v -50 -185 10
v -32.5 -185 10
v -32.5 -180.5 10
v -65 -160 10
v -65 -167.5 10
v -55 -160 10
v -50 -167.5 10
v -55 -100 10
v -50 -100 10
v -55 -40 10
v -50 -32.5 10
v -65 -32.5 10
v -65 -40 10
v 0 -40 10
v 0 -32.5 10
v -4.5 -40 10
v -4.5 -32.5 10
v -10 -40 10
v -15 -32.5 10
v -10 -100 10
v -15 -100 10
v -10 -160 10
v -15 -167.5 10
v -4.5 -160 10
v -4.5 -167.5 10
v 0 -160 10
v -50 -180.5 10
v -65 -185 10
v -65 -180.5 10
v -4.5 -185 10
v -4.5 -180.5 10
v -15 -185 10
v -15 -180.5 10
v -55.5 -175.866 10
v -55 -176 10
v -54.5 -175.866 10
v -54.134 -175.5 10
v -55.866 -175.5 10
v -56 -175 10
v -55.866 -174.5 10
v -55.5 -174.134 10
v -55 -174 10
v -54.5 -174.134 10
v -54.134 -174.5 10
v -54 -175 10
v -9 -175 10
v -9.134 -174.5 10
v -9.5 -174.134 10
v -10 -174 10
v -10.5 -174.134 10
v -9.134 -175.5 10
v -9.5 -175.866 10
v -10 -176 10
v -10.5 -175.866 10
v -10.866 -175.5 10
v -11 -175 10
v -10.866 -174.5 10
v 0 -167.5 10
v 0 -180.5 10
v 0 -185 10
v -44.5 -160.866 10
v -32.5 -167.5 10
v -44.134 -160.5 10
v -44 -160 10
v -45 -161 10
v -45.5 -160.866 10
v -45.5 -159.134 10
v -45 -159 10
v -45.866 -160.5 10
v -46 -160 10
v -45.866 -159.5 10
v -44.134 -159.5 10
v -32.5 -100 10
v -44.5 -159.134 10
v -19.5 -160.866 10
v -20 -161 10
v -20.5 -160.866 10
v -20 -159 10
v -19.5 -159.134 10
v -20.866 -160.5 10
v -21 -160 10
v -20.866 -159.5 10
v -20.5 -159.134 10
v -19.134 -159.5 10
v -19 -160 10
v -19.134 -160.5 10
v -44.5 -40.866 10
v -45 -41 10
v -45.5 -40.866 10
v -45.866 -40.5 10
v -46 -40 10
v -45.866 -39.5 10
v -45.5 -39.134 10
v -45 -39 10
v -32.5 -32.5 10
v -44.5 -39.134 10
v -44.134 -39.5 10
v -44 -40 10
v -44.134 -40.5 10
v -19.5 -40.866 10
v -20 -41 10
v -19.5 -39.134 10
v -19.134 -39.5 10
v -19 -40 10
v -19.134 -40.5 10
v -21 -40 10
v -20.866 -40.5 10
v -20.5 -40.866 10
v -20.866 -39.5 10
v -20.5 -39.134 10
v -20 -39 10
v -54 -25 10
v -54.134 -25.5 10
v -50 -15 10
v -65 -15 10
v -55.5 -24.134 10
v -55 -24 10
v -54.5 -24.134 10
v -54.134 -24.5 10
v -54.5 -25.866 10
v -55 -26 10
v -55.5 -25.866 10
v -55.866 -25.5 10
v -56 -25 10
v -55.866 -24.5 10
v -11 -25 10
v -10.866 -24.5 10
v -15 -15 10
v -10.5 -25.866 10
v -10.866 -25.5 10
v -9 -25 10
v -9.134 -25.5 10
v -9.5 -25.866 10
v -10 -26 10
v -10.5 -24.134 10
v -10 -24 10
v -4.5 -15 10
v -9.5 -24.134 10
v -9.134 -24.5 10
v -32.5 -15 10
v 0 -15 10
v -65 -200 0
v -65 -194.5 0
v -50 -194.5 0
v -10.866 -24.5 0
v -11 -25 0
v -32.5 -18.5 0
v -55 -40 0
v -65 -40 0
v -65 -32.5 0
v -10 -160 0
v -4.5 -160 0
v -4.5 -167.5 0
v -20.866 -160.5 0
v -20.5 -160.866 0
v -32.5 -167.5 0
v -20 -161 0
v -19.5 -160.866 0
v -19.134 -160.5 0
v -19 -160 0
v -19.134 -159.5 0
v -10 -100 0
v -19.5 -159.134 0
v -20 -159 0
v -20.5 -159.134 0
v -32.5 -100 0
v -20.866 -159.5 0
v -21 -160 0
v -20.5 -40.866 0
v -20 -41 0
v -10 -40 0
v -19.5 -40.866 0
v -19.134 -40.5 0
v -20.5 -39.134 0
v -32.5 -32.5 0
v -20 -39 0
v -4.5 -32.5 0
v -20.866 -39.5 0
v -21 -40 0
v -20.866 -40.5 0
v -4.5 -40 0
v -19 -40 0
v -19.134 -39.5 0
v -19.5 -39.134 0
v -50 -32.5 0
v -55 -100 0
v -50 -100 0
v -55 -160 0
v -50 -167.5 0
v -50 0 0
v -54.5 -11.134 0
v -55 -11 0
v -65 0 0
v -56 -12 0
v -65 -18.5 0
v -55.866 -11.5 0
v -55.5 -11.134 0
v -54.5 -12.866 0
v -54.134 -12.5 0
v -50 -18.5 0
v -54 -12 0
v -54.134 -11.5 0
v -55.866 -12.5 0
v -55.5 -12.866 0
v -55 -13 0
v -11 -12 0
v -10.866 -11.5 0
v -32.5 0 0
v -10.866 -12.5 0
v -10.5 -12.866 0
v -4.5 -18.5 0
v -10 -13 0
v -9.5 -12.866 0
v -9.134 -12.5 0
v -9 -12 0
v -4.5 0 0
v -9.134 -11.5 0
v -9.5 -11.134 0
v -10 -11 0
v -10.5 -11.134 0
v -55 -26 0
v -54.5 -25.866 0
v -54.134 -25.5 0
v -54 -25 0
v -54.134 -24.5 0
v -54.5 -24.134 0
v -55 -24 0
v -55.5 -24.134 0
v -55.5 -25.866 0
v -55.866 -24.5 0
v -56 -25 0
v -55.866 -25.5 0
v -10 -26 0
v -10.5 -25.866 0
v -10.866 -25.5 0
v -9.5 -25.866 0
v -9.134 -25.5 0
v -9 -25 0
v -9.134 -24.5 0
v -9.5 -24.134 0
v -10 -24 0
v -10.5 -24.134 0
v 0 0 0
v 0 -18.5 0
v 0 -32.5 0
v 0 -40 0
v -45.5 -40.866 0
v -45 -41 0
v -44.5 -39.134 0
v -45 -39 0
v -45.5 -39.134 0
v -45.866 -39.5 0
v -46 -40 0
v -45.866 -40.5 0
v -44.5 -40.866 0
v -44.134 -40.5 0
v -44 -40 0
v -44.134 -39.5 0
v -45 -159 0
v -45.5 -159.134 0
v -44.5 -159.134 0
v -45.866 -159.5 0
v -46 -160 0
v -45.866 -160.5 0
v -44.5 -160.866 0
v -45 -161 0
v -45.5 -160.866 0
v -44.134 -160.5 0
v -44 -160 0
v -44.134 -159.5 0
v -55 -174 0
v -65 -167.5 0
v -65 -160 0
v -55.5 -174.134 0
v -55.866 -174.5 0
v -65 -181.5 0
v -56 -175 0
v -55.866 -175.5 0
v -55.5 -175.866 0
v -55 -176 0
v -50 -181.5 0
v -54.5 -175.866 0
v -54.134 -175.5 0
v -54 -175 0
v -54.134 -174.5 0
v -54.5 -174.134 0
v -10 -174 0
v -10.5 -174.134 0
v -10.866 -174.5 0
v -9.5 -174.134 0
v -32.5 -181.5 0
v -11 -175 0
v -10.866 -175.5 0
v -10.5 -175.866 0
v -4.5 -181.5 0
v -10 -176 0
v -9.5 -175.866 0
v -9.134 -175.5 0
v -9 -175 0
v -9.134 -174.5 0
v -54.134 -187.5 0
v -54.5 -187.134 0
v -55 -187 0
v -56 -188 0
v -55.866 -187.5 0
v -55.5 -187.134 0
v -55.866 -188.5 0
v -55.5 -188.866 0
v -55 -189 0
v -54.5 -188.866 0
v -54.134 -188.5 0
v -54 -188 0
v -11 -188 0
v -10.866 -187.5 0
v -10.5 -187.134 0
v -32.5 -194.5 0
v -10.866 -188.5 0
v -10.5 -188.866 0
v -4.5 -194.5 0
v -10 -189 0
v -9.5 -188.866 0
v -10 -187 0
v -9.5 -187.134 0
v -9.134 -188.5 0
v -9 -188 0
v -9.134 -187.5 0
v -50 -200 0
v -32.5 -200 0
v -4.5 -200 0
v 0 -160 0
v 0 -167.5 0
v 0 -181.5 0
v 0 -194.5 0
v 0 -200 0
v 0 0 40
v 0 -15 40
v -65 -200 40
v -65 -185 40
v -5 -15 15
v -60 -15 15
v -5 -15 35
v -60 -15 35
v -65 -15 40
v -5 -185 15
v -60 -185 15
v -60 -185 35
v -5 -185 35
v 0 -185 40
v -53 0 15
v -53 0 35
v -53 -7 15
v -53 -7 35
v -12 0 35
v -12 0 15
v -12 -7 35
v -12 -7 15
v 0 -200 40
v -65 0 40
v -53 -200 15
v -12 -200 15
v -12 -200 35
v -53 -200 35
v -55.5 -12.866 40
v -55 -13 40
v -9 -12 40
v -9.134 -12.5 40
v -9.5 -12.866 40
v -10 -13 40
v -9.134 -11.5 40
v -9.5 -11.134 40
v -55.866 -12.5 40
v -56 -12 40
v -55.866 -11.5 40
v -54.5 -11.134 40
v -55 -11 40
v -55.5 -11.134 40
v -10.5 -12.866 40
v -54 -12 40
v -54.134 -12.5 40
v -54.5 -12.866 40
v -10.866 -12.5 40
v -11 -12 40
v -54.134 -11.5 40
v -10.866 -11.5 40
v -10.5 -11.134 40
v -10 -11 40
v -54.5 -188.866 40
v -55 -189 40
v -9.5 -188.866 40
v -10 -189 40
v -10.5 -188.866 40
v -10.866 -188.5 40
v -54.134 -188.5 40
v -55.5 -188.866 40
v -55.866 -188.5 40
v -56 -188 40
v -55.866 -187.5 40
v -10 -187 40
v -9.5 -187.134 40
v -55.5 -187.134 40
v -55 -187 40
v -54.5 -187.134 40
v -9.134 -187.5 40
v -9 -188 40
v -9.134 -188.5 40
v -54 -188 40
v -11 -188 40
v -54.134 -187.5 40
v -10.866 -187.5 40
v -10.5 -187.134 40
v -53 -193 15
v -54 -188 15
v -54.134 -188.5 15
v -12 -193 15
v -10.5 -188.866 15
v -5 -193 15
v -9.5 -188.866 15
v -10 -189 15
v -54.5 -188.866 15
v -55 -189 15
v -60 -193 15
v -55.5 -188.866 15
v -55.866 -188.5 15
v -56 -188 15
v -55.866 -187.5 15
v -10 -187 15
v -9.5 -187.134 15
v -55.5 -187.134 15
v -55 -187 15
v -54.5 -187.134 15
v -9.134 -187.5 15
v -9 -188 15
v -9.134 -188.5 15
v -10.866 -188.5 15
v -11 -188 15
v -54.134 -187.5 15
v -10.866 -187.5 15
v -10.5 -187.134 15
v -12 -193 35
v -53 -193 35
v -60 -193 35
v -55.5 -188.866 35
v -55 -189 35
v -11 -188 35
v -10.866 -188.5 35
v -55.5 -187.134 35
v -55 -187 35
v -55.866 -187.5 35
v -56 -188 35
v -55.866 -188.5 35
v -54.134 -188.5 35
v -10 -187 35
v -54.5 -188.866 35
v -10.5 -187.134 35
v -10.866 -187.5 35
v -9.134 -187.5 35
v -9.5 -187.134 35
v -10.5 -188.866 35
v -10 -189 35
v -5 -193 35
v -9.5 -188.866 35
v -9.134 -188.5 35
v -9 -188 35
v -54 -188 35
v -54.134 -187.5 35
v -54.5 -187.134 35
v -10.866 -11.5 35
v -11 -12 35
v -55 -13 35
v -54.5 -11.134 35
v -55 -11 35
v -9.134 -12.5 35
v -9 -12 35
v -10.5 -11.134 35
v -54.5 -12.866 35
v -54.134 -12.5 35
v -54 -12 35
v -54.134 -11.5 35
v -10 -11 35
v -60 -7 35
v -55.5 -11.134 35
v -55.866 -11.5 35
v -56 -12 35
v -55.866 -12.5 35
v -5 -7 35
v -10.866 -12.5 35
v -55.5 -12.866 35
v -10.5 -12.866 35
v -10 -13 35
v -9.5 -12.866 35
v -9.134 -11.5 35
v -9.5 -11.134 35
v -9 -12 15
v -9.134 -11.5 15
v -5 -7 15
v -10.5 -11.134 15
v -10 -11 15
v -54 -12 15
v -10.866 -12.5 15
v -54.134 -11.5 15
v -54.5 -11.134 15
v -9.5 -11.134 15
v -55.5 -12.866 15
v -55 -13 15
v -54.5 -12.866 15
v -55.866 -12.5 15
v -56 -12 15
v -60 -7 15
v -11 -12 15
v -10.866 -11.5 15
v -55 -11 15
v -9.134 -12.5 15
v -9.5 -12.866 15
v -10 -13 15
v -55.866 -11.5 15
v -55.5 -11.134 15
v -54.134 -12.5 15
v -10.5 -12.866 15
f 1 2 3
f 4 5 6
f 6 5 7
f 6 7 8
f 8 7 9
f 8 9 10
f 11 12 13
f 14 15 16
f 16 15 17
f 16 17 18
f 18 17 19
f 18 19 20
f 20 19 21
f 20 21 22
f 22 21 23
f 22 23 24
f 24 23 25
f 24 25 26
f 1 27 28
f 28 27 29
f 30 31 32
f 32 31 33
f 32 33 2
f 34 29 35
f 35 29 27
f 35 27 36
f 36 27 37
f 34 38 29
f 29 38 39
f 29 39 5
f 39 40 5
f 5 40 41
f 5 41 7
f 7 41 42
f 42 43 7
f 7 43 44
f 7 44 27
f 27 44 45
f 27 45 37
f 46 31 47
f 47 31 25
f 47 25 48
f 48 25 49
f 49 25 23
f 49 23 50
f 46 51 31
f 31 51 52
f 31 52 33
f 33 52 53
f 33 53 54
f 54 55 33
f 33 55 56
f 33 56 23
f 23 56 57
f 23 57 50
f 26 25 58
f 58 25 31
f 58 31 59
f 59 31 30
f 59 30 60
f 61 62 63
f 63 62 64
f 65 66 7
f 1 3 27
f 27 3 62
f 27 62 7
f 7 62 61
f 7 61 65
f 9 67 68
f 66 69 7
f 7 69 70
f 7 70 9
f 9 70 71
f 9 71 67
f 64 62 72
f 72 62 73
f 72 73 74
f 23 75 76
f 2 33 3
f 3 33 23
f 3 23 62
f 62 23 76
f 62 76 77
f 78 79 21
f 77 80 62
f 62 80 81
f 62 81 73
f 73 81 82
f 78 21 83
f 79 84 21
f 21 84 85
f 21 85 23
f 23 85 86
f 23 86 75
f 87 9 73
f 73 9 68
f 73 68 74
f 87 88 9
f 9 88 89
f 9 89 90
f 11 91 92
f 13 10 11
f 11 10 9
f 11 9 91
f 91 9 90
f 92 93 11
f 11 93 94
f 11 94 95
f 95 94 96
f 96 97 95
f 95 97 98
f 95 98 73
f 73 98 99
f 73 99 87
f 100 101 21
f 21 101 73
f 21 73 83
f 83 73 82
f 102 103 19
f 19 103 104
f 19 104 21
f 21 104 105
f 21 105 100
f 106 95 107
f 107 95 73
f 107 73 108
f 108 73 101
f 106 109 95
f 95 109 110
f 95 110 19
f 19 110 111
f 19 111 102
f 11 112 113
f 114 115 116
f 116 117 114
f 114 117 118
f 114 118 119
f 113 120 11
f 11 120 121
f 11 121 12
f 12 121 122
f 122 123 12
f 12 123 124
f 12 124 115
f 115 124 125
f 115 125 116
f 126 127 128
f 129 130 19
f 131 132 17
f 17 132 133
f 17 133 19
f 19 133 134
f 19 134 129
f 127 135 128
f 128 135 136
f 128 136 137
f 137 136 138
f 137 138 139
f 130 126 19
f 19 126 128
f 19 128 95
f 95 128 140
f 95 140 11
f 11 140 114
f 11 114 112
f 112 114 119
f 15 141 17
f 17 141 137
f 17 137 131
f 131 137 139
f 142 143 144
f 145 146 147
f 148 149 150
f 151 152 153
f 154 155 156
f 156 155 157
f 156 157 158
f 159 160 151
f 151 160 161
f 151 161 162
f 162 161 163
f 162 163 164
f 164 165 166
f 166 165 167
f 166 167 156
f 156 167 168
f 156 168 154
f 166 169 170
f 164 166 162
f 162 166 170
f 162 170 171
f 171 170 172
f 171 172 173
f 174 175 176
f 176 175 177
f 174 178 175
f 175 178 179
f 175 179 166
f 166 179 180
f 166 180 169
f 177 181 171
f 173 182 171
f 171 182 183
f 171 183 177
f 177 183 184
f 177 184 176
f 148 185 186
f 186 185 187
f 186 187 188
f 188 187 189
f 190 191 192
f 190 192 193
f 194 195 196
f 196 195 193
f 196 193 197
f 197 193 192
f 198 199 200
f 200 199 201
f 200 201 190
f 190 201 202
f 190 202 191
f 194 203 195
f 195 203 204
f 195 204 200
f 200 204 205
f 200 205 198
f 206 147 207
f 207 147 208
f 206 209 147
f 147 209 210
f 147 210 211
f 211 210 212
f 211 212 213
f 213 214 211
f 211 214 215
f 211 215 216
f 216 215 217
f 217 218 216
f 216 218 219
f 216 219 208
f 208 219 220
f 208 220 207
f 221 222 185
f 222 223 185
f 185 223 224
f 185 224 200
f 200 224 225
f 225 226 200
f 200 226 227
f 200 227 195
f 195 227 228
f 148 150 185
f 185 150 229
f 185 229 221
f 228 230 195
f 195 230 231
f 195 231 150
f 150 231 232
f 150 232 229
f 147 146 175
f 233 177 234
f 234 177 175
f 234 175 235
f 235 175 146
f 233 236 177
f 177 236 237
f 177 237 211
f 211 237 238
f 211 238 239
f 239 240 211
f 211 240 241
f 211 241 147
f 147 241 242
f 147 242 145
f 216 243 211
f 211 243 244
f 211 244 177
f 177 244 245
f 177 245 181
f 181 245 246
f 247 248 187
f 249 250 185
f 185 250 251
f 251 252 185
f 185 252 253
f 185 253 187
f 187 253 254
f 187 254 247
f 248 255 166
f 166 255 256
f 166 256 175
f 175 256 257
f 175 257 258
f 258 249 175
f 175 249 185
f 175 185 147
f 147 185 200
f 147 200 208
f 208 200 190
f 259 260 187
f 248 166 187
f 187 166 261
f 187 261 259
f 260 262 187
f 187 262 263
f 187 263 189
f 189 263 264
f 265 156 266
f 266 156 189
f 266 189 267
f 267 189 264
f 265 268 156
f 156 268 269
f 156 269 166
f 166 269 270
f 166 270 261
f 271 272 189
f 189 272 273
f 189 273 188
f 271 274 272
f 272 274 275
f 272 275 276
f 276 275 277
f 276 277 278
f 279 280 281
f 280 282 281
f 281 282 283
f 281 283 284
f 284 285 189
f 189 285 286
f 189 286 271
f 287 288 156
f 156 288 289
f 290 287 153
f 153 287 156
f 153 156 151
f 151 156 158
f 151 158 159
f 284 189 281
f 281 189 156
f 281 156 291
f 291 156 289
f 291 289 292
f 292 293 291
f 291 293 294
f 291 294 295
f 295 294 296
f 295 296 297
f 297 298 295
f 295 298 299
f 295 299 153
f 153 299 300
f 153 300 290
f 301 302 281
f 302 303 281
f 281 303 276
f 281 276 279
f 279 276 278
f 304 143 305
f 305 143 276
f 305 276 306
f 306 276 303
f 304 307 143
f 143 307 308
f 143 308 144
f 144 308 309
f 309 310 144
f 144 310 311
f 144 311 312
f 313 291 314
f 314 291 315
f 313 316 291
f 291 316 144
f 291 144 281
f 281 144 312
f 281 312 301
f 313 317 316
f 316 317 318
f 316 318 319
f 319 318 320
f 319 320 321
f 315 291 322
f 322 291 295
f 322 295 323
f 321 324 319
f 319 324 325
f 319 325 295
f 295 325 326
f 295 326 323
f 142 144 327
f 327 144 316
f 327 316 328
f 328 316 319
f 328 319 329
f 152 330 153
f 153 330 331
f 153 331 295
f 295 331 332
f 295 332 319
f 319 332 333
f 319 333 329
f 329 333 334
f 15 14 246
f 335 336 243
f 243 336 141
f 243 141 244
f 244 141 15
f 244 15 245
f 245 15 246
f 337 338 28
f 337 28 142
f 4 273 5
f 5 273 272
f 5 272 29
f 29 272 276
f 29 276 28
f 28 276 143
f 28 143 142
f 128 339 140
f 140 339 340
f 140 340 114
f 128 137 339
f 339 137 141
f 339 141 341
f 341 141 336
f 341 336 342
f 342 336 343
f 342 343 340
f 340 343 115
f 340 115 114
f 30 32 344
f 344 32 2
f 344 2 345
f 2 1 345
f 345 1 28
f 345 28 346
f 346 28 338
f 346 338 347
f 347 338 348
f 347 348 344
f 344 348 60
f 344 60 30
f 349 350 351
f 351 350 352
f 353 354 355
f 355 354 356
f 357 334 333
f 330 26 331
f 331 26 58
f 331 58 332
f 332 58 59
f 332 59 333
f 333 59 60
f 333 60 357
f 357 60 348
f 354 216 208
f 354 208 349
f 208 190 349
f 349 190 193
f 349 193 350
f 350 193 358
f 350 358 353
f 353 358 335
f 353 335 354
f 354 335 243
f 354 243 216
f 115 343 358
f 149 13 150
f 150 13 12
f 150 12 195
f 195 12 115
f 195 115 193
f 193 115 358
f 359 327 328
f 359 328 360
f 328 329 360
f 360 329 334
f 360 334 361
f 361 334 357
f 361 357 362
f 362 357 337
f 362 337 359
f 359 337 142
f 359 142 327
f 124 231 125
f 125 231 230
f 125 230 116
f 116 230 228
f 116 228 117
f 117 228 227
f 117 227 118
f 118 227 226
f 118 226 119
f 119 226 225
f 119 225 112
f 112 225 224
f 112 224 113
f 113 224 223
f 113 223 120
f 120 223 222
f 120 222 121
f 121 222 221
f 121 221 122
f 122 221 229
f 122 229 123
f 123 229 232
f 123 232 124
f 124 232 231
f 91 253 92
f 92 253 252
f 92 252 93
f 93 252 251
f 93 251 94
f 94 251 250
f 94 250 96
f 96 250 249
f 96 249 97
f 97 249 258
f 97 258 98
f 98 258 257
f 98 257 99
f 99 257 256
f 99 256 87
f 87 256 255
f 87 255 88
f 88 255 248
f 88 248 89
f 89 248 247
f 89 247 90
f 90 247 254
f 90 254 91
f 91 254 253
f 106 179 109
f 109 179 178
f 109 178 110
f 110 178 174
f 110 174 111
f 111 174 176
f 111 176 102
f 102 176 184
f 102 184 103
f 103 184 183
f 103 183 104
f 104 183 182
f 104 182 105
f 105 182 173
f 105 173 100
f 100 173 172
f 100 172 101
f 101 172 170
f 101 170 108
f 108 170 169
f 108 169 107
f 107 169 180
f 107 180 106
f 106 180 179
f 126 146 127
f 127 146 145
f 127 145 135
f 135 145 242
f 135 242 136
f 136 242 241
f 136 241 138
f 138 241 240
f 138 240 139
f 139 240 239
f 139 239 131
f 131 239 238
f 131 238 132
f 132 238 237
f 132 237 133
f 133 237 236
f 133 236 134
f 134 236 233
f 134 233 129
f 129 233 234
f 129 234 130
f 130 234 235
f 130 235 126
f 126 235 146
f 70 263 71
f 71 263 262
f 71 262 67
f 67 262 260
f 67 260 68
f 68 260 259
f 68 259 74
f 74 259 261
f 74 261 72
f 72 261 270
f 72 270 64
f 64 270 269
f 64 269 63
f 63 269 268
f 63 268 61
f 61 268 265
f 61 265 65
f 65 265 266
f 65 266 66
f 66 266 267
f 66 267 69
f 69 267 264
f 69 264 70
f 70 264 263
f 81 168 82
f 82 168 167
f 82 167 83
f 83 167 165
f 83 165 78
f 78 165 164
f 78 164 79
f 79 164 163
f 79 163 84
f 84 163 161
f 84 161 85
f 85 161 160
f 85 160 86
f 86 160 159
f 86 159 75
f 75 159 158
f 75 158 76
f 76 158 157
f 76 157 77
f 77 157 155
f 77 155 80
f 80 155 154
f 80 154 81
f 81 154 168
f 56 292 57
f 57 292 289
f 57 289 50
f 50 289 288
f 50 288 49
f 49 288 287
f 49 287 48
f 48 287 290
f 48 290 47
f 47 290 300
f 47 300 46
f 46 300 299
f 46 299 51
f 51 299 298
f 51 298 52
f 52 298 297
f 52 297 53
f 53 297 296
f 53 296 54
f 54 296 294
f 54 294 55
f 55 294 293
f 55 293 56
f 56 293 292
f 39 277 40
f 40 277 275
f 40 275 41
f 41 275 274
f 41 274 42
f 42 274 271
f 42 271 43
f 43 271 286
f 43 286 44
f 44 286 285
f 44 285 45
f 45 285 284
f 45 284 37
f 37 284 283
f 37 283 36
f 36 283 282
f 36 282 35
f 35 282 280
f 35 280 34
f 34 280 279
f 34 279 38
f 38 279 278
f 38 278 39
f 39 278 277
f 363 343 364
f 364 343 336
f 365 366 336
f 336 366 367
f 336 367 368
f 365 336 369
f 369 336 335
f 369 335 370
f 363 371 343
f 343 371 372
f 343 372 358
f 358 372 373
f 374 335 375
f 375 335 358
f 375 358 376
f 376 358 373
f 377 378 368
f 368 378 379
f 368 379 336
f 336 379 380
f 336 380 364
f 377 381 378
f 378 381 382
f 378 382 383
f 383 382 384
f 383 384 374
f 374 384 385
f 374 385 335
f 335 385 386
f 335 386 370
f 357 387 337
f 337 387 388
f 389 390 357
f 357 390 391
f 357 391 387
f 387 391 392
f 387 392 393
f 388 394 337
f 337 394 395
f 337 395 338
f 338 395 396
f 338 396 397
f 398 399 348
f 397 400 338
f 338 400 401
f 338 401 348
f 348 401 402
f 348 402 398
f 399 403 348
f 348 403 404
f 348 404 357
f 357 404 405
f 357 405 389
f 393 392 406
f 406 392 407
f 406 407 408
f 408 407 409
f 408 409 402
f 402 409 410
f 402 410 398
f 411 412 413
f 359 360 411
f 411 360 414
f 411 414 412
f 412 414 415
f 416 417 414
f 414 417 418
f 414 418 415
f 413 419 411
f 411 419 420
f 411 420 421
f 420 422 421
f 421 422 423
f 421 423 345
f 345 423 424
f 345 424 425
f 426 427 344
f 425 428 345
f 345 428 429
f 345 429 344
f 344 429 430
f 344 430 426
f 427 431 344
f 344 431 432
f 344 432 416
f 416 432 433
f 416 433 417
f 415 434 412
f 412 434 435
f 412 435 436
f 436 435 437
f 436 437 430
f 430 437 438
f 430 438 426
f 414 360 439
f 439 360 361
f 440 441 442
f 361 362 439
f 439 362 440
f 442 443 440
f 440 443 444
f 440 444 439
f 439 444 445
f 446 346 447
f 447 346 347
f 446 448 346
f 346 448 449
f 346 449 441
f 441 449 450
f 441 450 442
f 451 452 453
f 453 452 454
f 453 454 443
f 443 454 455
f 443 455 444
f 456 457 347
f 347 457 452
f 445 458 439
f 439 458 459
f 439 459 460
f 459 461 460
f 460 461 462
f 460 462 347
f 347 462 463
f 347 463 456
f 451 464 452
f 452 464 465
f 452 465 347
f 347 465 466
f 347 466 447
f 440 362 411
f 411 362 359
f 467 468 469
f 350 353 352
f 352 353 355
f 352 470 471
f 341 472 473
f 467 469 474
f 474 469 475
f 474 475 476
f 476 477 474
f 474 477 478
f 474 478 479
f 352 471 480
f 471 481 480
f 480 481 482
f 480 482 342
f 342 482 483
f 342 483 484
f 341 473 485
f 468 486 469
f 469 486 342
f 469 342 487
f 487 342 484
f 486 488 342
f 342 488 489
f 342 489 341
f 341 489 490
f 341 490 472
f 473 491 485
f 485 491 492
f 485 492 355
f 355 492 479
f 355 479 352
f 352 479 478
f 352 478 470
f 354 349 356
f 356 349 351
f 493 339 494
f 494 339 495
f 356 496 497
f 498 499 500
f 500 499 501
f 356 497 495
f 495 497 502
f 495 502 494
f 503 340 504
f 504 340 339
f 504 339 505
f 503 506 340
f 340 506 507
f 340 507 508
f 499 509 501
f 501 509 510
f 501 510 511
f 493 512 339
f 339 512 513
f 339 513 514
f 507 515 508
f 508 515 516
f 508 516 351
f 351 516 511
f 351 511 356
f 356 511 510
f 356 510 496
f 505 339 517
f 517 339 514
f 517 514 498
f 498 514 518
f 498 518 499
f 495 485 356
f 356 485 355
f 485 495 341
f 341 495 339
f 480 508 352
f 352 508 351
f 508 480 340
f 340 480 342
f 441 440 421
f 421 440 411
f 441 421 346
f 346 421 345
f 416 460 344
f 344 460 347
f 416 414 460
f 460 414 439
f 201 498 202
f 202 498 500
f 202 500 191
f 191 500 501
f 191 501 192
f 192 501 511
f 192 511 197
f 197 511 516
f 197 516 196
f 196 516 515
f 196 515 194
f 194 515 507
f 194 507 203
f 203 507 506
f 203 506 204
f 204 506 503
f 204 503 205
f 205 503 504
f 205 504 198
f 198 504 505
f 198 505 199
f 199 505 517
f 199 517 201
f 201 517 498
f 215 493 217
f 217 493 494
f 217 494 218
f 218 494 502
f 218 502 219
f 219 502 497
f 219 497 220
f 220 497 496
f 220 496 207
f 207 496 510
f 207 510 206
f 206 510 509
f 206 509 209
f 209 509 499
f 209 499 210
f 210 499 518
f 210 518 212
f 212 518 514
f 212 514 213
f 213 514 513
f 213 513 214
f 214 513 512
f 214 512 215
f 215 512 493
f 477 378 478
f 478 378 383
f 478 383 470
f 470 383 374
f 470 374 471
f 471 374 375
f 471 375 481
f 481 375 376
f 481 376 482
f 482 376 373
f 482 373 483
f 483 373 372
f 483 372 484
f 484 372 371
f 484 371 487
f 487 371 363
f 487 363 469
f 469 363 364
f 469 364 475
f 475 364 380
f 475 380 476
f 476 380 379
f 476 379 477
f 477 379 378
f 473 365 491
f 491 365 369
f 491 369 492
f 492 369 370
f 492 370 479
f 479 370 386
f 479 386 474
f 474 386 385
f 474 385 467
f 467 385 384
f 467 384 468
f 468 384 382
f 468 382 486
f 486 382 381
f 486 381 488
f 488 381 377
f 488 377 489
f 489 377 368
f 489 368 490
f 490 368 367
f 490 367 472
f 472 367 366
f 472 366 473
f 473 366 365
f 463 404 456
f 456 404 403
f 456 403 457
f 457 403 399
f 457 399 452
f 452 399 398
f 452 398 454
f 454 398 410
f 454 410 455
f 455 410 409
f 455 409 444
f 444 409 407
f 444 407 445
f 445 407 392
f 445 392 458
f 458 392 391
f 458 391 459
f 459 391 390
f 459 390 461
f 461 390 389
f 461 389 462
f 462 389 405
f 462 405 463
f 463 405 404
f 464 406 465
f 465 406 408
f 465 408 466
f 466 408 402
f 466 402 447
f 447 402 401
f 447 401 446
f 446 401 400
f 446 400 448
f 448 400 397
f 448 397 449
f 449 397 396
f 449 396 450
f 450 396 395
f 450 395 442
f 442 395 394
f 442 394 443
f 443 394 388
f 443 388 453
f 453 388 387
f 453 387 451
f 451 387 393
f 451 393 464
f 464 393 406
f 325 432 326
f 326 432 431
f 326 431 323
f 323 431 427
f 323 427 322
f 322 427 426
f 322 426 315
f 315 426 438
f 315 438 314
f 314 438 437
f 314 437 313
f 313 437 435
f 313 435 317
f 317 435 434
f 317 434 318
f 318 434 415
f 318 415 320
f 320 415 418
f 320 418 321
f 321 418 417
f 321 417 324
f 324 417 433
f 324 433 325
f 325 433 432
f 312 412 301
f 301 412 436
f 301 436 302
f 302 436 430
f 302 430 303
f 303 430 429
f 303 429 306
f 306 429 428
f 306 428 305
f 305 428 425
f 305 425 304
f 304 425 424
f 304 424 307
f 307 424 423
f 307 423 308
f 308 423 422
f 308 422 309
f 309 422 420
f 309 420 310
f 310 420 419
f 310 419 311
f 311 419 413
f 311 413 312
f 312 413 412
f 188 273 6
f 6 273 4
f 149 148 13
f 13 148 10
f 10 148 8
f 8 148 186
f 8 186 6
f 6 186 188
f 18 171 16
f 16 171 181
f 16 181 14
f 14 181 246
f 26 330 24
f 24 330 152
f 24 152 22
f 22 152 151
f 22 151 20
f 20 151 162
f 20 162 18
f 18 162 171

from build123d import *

# Parameters (mm, degrees)
ESQUISSE1_W                  = 65
ESQUISSE1_H                  = 200
ESQUISSE1_R                  = 1
BOSS_EXTRU_1_DEPTH           = 10
ESQUISSE2_W                  = 65
ESQUISSE2_H                  = 15
BOSS_EXTRU_2_DEPTH           = 30
ESQUISSE3_W                  = 41
ESQUISSE3_H                  = 20
ENL_V_MAT_EXTRU_1_DEPTH      = 215.067746286
ENL_V_MAT_EXTRU_2_DEPTH      = 178
ENL_V_MAT_EXTRU_2_DEPTH_BACK = 8
ESQUISSE4_W                  = 55
ESQUISSE4_H                  = 20
ESQUISSE5_R                  = 1
ENL_V_MAT_EXTRU_3_DEPTH      = 215.067746286
ESQUISSE6_W                  = 10
ESQUISSE6_H                  = 120
ENL_V_MAT_EXTRU_4_DEPTH      = 10


with BuildPart() as part:
    # Esquisse1 → Boss.-Extru.1 (new body)
    with BuildSketch(Plane.XY):
        with Locations((-32.5, -100)):
            Rectangle(ESQUISSE1_W, ESQUISSE1_H)
        with Locations((-55, -25)):
            Circle(ESQUISSE1_R, mode=Mode.SUBTRACT)
        with Locations((-45, -40)):
            Circle(ESQUISSE1_R, mode=Mode.SUBTRACT)
        with Locations((-20, -40)):
            Circle(ESQUISSE1_R, mode=Mode.SUBTRACT)
        with Locations((-10, -25)):
            Circle(ESQUISSE1_R, mode=Mode.SUBTRACT)
        with Locations((-45, -160)):
            Circle(ESQUISSE1_R, mode=Mode.SUBTRACT)
        with Locations((-20, -160)):
            Circle(ESQUISSE1_R, mode=Mode.SUBTRACT)
        with Locations((-10, -175)):
            Circle(ESQUISSE1_R, mode=Mode.SUBTRACT)
        with Locations((-55, -175)):
            Circle(ESQUISSE1_R, mode=Mode.SUBTRACT)
    extrude(amount=BOSS_EXTRU_1_DEPTH)

    # Esquisse2 → Boss.-Extru.2 (add)
    with BuildSketch(Plane.XY.offset(10)):
        with Locations((-32.5, -7.5)):
            Rectangle(ESQUISSE2_W, ESQUISSE2_H)
        with Locations((-32.5, -192.5)):
            Rectangle(ESQUISSE2_W, ESQUISSE2_H)
    extrude(amount=BOSS_EXTRU_2_DEPTH)

    # Esquisse3 → Enlèv. mat.-Extru.1 (cut, through all)
    with BuildSketch(Plane.XZ.offset(200)):
        with Locations((-32.5, 25)):
            Rectangle(ESQUISSE3_W, ESQUISSE3_H)
    extrude(amount=-ENL_V_MAT_EXTRU_1_DEPTH, mode=Mode.SUBTRACT)

    # Esquisse4 → Enlèv. mat.-Extru.2 (cut, two sides: drawn at the far end of the back side and taken through both)
    with BuildSketch(Plane.XZ.offset(15).offset(-ENL_V_MAT_EXTRU_2_DEPTH_BACK)):
        with Locations((-32.5, 25)):
            Rectangle(ESQUISSE4_W, ESQUISSE4_H)
    extrude(amount=ENL_V_MAT_EXTRU_2_DEPTH + ENL_V_MAT_EXTRU_2_DEPTH_BACK, mode=Mode.SUBTRACT)

    # Esquisse5 → Enlèv. mat.-Extru.3 (cut, through all)
    with BuildSketch(Plane.XY.offset(40)):
        with Locations((-55, -12)):
            Circle(ESQUISSE5_R)
        with Locations((-10, -12)):
            Circle(ESQUISSE5_R)
        with Locations((-10, -188)):
            Circle(ESQUISSE5_R)
        with Locations((-55, -188)):
            Circle(ESQUISSE5_R)
    extrude(amount=-ENL_V_MAT_EXTRU_3_DEPTH, mode=Mode.SUBTRACT)

    # Esquisse6 → Enlèv. mat.-Extru.4 (cut)
    with BuildSketch(Plane.XY.offset(10)):
        with Locations((-60, -100)):
            Rectangle(ESQUISSE6_W, ESQUISSE6_H)
        with Locations((-5, -100)):
            Rectangle(ESQUISSE6_W, ESQUISSE6_H)
    extrude(amount=-ENL_V_MAT_EXTRU_4_DEPTH, mode=Mode.SUBTRACT)


solid = part.part
